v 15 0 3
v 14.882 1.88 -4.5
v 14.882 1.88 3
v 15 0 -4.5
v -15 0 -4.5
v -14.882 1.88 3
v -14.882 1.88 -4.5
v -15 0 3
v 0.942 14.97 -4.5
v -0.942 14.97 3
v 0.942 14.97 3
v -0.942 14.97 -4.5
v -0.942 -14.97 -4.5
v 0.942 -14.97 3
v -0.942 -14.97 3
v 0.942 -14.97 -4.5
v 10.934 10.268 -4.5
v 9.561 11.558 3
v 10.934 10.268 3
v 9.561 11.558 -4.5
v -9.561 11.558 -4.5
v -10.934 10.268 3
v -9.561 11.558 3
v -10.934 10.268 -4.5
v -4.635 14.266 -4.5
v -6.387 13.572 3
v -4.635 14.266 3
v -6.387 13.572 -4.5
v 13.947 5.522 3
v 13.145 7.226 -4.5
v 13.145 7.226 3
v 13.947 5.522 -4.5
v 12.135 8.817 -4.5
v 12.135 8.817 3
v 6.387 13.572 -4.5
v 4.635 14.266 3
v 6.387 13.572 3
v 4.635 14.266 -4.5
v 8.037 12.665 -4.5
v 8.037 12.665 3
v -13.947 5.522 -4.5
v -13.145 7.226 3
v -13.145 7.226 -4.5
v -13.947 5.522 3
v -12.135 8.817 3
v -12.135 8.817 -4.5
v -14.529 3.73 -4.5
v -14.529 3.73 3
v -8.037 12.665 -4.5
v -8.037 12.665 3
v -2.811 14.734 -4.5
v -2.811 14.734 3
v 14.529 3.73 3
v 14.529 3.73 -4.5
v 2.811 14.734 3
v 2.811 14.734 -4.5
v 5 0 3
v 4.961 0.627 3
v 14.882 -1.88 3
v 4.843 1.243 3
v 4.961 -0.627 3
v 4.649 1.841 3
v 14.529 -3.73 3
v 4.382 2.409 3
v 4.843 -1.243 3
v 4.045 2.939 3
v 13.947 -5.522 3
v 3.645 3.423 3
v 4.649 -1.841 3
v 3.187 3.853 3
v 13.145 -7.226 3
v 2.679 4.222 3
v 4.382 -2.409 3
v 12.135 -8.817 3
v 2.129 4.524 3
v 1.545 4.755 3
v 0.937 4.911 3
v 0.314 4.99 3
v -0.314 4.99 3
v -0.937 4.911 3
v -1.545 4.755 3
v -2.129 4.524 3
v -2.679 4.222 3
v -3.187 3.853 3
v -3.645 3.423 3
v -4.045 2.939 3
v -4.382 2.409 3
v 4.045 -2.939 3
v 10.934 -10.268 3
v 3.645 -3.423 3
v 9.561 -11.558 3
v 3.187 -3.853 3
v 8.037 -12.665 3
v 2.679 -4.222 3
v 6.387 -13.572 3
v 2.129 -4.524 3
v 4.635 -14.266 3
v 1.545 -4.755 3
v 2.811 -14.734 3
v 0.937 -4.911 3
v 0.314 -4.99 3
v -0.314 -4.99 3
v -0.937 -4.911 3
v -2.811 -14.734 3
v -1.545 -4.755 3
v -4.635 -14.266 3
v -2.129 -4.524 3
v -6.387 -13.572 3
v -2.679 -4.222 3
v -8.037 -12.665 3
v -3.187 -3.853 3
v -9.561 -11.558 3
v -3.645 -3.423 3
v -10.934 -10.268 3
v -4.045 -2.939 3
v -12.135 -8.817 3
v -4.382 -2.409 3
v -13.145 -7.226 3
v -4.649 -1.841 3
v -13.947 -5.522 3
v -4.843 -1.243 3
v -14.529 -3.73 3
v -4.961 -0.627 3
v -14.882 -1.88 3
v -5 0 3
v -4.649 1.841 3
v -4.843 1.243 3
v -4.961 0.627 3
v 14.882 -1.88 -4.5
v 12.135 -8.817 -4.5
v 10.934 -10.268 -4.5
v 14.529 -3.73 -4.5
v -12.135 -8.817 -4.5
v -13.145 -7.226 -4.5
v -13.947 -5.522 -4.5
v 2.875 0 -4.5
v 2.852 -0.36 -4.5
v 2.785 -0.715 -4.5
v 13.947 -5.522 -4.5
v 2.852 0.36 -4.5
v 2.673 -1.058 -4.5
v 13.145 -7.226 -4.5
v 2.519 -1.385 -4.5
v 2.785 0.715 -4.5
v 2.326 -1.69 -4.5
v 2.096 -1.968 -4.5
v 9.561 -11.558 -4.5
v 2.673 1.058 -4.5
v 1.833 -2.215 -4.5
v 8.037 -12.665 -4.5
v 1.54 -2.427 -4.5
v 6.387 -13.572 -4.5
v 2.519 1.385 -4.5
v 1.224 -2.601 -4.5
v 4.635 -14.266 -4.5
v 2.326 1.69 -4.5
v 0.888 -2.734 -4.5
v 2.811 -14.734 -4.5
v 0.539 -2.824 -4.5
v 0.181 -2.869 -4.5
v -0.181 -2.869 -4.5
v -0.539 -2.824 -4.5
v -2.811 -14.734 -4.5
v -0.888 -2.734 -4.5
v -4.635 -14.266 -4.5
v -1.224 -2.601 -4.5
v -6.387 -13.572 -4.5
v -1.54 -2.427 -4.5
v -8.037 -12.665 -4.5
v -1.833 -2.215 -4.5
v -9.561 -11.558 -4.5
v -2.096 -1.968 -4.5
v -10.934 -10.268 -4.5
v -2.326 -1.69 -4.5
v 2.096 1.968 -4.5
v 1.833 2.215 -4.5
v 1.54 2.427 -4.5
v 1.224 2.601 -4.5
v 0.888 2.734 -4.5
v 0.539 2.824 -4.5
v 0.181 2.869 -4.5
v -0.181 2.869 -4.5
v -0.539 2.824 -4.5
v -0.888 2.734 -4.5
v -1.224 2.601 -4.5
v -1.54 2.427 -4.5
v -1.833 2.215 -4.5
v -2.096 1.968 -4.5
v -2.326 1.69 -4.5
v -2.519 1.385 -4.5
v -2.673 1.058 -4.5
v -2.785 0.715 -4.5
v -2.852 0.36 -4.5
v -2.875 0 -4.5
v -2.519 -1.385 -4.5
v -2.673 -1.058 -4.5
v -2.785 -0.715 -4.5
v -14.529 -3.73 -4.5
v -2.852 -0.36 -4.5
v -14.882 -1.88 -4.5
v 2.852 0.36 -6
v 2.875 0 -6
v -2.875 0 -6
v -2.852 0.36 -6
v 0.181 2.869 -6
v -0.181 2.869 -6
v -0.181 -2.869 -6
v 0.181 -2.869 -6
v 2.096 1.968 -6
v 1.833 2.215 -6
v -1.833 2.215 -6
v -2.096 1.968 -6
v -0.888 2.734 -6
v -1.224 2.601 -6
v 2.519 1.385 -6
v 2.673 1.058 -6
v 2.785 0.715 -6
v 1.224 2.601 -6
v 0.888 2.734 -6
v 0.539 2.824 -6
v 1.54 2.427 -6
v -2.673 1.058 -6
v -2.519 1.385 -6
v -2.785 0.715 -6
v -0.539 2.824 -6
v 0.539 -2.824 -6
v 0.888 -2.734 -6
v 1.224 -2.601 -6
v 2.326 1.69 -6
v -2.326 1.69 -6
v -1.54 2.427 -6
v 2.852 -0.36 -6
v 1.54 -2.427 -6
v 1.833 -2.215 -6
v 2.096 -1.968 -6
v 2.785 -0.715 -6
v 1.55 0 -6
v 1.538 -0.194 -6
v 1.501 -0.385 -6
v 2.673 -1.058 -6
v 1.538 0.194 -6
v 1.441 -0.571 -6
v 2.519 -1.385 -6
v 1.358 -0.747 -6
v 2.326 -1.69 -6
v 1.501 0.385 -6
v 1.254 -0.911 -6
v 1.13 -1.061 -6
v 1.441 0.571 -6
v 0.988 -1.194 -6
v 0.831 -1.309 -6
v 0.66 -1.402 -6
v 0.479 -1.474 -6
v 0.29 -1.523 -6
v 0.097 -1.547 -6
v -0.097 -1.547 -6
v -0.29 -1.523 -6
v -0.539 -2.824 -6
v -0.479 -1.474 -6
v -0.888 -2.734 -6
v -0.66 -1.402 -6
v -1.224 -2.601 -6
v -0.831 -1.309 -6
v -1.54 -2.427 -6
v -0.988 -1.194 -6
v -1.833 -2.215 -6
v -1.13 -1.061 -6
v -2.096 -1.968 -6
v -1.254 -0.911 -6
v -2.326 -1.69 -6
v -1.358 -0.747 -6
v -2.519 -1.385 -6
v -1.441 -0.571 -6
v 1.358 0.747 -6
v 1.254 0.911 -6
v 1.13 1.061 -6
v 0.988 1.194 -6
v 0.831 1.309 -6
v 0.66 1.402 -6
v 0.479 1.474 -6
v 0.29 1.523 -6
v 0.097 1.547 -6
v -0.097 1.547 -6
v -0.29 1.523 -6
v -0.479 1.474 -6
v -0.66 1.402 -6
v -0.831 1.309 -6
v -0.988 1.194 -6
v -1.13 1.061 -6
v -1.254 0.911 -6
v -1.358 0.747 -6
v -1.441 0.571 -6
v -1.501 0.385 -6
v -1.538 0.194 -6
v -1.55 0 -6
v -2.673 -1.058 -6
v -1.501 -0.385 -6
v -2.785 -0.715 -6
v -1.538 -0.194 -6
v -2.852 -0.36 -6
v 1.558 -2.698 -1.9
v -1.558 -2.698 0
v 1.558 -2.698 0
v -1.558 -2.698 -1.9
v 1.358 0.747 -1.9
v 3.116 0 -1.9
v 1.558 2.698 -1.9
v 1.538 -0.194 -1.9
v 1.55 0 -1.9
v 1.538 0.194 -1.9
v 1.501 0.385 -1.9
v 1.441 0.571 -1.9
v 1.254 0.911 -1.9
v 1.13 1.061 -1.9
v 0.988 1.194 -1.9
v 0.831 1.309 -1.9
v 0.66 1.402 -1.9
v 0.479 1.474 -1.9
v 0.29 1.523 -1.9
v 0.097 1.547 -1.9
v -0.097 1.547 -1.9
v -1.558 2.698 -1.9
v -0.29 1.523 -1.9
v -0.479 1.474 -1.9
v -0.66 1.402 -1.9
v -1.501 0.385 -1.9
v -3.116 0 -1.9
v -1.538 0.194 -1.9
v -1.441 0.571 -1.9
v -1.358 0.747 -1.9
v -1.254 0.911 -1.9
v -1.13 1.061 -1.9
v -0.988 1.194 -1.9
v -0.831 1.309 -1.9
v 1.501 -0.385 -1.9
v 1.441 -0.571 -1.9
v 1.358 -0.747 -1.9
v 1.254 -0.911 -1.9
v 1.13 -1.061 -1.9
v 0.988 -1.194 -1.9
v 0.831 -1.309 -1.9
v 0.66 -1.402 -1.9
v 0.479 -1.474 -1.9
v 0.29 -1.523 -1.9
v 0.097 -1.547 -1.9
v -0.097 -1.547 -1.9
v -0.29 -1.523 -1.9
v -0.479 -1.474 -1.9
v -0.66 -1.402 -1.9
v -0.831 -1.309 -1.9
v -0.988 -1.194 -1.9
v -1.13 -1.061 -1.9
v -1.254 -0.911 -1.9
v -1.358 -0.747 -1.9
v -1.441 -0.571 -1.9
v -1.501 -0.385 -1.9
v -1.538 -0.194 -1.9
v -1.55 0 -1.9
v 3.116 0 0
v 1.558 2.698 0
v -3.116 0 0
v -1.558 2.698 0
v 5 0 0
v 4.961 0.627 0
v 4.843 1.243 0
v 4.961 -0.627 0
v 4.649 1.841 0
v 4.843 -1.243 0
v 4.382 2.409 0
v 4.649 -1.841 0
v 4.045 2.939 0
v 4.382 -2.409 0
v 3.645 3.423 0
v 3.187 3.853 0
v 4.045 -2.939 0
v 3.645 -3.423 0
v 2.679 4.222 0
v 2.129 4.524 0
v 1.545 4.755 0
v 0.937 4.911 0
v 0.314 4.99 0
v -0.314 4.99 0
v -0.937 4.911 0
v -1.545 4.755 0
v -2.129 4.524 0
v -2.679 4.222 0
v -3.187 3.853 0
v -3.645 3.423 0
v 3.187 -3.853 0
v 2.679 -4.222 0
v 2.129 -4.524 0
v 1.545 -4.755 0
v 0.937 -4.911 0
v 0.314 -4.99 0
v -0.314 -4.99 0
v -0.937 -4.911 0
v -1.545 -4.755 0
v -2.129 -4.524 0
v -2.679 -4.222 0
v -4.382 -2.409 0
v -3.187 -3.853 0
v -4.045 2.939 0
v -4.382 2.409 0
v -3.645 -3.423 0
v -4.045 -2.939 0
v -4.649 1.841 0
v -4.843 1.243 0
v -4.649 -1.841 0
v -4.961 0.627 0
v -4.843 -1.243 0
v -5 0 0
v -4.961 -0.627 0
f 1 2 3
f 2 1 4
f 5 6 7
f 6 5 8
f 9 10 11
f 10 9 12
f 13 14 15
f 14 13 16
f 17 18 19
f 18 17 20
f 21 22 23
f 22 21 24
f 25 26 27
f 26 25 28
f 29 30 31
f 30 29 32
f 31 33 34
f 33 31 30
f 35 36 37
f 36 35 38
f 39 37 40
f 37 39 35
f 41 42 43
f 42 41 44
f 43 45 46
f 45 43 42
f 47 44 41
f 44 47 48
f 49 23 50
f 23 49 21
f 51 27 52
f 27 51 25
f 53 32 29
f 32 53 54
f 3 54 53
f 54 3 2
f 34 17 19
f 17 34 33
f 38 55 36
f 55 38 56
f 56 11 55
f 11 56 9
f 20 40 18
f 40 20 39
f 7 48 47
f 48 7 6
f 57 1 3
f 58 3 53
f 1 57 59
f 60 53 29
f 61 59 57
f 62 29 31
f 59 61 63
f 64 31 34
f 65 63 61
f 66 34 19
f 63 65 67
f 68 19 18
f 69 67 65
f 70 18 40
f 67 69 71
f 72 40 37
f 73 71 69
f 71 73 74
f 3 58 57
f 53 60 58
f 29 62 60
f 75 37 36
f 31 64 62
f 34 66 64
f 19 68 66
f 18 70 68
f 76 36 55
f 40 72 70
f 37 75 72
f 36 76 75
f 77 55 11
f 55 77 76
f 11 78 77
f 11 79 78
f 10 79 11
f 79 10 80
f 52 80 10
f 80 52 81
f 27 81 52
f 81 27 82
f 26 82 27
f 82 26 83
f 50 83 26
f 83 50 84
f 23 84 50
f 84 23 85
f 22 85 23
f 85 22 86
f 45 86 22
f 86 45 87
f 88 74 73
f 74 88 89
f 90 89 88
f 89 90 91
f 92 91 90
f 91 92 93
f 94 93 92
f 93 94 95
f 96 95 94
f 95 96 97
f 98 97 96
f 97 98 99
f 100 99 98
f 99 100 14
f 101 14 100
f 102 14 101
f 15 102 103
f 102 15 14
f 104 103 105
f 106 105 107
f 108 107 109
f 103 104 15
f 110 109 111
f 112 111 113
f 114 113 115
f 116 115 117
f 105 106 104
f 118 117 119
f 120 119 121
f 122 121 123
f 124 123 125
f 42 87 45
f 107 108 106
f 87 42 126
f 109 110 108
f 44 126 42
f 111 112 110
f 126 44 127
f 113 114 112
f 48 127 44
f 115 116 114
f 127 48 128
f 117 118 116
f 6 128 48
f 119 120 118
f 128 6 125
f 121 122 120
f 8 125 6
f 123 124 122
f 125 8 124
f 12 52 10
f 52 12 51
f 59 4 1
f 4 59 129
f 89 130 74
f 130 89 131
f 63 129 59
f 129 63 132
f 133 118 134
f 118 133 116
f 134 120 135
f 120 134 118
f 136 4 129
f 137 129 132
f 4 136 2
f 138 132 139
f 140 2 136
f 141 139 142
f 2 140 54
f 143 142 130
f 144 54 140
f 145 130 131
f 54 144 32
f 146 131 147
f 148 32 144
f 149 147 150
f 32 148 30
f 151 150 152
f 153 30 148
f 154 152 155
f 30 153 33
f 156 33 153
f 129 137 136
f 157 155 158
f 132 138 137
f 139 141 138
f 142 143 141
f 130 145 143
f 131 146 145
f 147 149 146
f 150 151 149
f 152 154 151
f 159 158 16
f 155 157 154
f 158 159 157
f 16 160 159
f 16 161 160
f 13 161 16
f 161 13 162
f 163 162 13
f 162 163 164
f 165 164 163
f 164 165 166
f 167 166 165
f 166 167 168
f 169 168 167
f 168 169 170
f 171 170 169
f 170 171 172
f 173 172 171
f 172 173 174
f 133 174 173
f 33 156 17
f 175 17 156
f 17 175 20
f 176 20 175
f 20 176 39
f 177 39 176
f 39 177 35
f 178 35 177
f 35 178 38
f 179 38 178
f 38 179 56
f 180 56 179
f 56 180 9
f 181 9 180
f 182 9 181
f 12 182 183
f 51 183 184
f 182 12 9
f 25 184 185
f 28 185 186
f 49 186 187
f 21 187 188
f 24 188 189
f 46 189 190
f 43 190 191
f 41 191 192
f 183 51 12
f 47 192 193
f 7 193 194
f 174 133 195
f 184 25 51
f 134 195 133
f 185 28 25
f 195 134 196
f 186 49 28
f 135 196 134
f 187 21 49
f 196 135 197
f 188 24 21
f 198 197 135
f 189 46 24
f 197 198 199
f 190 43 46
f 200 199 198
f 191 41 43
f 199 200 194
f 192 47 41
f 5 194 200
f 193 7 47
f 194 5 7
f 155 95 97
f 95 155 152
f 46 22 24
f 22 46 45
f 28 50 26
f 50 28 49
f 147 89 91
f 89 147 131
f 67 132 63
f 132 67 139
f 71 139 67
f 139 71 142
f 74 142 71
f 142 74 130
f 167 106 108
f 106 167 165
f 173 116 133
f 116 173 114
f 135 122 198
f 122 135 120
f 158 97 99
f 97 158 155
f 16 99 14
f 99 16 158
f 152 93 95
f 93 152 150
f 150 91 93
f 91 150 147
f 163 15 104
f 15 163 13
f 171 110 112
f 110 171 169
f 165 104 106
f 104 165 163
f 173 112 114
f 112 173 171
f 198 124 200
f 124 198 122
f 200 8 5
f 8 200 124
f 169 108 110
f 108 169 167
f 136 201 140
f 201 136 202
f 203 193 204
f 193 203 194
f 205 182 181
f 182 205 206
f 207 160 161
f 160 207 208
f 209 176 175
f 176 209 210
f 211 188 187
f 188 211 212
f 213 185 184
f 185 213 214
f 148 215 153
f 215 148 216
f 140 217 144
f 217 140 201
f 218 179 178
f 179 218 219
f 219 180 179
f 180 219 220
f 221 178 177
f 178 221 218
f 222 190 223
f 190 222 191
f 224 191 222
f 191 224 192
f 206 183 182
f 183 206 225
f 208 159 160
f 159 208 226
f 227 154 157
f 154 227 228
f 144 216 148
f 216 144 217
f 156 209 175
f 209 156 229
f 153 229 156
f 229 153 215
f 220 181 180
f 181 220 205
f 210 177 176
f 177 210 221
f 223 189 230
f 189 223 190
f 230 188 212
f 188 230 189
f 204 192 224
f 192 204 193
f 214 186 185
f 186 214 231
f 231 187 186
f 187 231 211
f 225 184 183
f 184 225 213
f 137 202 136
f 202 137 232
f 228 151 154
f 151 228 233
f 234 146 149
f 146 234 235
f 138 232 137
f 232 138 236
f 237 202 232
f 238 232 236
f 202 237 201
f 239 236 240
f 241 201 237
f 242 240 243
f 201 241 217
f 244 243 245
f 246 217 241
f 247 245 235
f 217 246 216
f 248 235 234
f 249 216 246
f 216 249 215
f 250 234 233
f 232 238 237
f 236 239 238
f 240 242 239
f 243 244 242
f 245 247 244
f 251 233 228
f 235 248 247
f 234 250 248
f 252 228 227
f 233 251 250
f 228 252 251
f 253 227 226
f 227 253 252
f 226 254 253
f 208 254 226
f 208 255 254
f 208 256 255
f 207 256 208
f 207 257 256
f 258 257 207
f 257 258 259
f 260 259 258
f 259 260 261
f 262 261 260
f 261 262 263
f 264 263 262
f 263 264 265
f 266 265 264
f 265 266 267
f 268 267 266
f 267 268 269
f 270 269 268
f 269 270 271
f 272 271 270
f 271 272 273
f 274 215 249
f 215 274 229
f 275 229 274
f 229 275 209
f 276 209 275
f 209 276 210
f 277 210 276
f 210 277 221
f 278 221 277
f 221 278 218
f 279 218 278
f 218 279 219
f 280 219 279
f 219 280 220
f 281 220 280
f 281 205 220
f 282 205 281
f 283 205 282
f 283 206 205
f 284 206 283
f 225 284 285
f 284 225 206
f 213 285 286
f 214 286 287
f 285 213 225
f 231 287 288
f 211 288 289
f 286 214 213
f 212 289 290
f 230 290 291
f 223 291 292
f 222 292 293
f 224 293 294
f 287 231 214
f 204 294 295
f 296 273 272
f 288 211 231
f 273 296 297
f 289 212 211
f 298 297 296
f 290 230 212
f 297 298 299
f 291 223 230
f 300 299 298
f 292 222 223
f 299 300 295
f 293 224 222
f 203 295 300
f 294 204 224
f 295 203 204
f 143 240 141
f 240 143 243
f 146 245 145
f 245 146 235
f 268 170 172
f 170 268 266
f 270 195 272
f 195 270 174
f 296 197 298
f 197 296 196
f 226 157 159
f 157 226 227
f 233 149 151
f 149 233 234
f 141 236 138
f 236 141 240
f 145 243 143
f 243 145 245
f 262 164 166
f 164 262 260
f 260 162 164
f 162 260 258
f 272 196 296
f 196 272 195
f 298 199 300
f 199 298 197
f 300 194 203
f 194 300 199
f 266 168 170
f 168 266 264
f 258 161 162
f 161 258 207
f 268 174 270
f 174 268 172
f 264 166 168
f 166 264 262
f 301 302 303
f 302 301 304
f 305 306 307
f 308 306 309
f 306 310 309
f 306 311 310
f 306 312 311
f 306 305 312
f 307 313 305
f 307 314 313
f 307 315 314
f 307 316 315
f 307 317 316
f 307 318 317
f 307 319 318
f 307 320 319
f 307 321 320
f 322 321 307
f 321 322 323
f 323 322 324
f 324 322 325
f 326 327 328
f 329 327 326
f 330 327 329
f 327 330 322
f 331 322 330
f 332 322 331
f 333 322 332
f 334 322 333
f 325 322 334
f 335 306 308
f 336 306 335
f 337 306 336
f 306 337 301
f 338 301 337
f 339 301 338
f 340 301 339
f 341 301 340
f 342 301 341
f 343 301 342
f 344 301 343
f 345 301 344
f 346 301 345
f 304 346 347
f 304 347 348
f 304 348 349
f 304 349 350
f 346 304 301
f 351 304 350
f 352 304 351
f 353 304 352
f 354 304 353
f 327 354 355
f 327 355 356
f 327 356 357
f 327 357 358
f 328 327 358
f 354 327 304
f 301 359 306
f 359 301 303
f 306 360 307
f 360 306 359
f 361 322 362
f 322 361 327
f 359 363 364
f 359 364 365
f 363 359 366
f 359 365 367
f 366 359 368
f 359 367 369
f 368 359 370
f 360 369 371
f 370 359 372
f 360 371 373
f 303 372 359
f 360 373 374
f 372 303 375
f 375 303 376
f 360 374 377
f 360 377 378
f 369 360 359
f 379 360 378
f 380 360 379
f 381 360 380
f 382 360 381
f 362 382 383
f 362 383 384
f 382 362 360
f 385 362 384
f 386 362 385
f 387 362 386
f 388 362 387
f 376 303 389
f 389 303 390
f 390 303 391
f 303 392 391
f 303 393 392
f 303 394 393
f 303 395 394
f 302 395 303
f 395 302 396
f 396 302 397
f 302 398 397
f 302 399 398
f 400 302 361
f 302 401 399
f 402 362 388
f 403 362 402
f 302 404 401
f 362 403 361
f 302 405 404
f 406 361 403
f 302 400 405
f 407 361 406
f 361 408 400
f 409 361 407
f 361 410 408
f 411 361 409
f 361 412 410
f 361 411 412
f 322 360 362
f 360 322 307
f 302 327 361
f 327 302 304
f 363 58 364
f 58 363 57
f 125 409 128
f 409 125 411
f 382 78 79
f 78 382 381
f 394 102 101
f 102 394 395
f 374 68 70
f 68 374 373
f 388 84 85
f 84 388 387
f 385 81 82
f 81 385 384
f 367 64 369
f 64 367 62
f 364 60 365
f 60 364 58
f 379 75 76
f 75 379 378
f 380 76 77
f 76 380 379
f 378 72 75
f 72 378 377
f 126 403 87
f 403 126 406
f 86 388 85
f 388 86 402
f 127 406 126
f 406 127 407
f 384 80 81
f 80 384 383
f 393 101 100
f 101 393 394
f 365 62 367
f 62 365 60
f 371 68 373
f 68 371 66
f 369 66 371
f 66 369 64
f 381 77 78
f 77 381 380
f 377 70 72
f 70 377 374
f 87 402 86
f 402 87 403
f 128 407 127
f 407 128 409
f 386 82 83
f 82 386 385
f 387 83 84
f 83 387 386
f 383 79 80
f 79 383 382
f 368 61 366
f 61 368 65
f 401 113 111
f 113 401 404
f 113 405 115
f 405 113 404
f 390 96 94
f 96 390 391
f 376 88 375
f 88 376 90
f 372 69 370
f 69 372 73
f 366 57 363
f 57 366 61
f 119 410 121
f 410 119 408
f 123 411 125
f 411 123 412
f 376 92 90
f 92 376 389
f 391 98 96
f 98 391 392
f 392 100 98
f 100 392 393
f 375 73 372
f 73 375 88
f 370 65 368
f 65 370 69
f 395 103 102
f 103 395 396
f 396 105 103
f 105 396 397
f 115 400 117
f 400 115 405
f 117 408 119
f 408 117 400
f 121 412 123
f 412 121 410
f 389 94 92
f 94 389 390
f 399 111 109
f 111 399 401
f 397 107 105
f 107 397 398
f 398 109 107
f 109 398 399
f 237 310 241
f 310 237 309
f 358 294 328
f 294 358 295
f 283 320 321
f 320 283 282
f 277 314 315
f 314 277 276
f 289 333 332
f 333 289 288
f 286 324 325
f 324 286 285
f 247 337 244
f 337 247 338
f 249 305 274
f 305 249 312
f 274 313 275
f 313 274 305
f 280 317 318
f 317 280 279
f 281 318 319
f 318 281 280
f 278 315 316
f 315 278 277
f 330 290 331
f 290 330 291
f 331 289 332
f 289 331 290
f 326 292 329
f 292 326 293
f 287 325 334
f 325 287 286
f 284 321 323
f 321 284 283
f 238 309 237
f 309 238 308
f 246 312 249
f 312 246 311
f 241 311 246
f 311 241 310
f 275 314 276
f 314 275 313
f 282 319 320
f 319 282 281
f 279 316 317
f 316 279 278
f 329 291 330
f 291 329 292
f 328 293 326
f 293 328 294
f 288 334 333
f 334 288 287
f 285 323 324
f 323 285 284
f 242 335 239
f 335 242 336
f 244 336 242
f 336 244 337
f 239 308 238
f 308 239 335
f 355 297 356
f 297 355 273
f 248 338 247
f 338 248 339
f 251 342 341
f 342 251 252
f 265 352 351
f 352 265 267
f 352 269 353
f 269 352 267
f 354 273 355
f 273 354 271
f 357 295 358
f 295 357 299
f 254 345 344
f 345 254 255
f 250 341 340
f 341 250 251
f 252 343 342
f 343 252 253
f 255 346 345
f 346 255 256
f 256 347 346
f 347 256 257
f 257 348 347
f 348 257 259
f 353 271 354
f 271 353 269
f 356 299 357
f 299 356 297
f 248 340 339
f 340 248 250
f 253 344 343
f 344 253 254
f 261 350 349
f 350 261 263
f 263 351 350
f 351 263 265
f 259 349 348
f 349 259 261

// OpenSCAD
$fn = 50;

difference() {
	union() {
		translate(v = [0, 0, -4.5]) {
			cylinder(h = 7.5, r = 15.0);
		}
		#translate(v = [0, 0, -6.0]) {
			cylinder(h = 6, r = 2.875);
		}
	}
	union() {
		translate(v = [0, 0, 0]) {
			rotate(a = [0, 0, 0]) {
				difference() {
					union() {
						translate(v = [0, 0, -1.9]) {
							linear_extrude(height = 1.9) {
								polygon(points = [[3.1158, 0.0], [1.5579000000000005, 2.698361953111554], [-1.5578999999999994, 2.6983619531115544], [-3.1158, 3.815754496783323e-16], [-1.5579000000000014, -2.6983619531115535], [1.557899999999998, -2.6983619531115552]]);
							}
						}
					}
					union();
				}
			}
		}
		#cylinder(h = 3, r = 5.0);
		#translate(v = [0, 0, -100.0]) {
			cylinder(h = 200, r = 1.55);
		}
	}
}
